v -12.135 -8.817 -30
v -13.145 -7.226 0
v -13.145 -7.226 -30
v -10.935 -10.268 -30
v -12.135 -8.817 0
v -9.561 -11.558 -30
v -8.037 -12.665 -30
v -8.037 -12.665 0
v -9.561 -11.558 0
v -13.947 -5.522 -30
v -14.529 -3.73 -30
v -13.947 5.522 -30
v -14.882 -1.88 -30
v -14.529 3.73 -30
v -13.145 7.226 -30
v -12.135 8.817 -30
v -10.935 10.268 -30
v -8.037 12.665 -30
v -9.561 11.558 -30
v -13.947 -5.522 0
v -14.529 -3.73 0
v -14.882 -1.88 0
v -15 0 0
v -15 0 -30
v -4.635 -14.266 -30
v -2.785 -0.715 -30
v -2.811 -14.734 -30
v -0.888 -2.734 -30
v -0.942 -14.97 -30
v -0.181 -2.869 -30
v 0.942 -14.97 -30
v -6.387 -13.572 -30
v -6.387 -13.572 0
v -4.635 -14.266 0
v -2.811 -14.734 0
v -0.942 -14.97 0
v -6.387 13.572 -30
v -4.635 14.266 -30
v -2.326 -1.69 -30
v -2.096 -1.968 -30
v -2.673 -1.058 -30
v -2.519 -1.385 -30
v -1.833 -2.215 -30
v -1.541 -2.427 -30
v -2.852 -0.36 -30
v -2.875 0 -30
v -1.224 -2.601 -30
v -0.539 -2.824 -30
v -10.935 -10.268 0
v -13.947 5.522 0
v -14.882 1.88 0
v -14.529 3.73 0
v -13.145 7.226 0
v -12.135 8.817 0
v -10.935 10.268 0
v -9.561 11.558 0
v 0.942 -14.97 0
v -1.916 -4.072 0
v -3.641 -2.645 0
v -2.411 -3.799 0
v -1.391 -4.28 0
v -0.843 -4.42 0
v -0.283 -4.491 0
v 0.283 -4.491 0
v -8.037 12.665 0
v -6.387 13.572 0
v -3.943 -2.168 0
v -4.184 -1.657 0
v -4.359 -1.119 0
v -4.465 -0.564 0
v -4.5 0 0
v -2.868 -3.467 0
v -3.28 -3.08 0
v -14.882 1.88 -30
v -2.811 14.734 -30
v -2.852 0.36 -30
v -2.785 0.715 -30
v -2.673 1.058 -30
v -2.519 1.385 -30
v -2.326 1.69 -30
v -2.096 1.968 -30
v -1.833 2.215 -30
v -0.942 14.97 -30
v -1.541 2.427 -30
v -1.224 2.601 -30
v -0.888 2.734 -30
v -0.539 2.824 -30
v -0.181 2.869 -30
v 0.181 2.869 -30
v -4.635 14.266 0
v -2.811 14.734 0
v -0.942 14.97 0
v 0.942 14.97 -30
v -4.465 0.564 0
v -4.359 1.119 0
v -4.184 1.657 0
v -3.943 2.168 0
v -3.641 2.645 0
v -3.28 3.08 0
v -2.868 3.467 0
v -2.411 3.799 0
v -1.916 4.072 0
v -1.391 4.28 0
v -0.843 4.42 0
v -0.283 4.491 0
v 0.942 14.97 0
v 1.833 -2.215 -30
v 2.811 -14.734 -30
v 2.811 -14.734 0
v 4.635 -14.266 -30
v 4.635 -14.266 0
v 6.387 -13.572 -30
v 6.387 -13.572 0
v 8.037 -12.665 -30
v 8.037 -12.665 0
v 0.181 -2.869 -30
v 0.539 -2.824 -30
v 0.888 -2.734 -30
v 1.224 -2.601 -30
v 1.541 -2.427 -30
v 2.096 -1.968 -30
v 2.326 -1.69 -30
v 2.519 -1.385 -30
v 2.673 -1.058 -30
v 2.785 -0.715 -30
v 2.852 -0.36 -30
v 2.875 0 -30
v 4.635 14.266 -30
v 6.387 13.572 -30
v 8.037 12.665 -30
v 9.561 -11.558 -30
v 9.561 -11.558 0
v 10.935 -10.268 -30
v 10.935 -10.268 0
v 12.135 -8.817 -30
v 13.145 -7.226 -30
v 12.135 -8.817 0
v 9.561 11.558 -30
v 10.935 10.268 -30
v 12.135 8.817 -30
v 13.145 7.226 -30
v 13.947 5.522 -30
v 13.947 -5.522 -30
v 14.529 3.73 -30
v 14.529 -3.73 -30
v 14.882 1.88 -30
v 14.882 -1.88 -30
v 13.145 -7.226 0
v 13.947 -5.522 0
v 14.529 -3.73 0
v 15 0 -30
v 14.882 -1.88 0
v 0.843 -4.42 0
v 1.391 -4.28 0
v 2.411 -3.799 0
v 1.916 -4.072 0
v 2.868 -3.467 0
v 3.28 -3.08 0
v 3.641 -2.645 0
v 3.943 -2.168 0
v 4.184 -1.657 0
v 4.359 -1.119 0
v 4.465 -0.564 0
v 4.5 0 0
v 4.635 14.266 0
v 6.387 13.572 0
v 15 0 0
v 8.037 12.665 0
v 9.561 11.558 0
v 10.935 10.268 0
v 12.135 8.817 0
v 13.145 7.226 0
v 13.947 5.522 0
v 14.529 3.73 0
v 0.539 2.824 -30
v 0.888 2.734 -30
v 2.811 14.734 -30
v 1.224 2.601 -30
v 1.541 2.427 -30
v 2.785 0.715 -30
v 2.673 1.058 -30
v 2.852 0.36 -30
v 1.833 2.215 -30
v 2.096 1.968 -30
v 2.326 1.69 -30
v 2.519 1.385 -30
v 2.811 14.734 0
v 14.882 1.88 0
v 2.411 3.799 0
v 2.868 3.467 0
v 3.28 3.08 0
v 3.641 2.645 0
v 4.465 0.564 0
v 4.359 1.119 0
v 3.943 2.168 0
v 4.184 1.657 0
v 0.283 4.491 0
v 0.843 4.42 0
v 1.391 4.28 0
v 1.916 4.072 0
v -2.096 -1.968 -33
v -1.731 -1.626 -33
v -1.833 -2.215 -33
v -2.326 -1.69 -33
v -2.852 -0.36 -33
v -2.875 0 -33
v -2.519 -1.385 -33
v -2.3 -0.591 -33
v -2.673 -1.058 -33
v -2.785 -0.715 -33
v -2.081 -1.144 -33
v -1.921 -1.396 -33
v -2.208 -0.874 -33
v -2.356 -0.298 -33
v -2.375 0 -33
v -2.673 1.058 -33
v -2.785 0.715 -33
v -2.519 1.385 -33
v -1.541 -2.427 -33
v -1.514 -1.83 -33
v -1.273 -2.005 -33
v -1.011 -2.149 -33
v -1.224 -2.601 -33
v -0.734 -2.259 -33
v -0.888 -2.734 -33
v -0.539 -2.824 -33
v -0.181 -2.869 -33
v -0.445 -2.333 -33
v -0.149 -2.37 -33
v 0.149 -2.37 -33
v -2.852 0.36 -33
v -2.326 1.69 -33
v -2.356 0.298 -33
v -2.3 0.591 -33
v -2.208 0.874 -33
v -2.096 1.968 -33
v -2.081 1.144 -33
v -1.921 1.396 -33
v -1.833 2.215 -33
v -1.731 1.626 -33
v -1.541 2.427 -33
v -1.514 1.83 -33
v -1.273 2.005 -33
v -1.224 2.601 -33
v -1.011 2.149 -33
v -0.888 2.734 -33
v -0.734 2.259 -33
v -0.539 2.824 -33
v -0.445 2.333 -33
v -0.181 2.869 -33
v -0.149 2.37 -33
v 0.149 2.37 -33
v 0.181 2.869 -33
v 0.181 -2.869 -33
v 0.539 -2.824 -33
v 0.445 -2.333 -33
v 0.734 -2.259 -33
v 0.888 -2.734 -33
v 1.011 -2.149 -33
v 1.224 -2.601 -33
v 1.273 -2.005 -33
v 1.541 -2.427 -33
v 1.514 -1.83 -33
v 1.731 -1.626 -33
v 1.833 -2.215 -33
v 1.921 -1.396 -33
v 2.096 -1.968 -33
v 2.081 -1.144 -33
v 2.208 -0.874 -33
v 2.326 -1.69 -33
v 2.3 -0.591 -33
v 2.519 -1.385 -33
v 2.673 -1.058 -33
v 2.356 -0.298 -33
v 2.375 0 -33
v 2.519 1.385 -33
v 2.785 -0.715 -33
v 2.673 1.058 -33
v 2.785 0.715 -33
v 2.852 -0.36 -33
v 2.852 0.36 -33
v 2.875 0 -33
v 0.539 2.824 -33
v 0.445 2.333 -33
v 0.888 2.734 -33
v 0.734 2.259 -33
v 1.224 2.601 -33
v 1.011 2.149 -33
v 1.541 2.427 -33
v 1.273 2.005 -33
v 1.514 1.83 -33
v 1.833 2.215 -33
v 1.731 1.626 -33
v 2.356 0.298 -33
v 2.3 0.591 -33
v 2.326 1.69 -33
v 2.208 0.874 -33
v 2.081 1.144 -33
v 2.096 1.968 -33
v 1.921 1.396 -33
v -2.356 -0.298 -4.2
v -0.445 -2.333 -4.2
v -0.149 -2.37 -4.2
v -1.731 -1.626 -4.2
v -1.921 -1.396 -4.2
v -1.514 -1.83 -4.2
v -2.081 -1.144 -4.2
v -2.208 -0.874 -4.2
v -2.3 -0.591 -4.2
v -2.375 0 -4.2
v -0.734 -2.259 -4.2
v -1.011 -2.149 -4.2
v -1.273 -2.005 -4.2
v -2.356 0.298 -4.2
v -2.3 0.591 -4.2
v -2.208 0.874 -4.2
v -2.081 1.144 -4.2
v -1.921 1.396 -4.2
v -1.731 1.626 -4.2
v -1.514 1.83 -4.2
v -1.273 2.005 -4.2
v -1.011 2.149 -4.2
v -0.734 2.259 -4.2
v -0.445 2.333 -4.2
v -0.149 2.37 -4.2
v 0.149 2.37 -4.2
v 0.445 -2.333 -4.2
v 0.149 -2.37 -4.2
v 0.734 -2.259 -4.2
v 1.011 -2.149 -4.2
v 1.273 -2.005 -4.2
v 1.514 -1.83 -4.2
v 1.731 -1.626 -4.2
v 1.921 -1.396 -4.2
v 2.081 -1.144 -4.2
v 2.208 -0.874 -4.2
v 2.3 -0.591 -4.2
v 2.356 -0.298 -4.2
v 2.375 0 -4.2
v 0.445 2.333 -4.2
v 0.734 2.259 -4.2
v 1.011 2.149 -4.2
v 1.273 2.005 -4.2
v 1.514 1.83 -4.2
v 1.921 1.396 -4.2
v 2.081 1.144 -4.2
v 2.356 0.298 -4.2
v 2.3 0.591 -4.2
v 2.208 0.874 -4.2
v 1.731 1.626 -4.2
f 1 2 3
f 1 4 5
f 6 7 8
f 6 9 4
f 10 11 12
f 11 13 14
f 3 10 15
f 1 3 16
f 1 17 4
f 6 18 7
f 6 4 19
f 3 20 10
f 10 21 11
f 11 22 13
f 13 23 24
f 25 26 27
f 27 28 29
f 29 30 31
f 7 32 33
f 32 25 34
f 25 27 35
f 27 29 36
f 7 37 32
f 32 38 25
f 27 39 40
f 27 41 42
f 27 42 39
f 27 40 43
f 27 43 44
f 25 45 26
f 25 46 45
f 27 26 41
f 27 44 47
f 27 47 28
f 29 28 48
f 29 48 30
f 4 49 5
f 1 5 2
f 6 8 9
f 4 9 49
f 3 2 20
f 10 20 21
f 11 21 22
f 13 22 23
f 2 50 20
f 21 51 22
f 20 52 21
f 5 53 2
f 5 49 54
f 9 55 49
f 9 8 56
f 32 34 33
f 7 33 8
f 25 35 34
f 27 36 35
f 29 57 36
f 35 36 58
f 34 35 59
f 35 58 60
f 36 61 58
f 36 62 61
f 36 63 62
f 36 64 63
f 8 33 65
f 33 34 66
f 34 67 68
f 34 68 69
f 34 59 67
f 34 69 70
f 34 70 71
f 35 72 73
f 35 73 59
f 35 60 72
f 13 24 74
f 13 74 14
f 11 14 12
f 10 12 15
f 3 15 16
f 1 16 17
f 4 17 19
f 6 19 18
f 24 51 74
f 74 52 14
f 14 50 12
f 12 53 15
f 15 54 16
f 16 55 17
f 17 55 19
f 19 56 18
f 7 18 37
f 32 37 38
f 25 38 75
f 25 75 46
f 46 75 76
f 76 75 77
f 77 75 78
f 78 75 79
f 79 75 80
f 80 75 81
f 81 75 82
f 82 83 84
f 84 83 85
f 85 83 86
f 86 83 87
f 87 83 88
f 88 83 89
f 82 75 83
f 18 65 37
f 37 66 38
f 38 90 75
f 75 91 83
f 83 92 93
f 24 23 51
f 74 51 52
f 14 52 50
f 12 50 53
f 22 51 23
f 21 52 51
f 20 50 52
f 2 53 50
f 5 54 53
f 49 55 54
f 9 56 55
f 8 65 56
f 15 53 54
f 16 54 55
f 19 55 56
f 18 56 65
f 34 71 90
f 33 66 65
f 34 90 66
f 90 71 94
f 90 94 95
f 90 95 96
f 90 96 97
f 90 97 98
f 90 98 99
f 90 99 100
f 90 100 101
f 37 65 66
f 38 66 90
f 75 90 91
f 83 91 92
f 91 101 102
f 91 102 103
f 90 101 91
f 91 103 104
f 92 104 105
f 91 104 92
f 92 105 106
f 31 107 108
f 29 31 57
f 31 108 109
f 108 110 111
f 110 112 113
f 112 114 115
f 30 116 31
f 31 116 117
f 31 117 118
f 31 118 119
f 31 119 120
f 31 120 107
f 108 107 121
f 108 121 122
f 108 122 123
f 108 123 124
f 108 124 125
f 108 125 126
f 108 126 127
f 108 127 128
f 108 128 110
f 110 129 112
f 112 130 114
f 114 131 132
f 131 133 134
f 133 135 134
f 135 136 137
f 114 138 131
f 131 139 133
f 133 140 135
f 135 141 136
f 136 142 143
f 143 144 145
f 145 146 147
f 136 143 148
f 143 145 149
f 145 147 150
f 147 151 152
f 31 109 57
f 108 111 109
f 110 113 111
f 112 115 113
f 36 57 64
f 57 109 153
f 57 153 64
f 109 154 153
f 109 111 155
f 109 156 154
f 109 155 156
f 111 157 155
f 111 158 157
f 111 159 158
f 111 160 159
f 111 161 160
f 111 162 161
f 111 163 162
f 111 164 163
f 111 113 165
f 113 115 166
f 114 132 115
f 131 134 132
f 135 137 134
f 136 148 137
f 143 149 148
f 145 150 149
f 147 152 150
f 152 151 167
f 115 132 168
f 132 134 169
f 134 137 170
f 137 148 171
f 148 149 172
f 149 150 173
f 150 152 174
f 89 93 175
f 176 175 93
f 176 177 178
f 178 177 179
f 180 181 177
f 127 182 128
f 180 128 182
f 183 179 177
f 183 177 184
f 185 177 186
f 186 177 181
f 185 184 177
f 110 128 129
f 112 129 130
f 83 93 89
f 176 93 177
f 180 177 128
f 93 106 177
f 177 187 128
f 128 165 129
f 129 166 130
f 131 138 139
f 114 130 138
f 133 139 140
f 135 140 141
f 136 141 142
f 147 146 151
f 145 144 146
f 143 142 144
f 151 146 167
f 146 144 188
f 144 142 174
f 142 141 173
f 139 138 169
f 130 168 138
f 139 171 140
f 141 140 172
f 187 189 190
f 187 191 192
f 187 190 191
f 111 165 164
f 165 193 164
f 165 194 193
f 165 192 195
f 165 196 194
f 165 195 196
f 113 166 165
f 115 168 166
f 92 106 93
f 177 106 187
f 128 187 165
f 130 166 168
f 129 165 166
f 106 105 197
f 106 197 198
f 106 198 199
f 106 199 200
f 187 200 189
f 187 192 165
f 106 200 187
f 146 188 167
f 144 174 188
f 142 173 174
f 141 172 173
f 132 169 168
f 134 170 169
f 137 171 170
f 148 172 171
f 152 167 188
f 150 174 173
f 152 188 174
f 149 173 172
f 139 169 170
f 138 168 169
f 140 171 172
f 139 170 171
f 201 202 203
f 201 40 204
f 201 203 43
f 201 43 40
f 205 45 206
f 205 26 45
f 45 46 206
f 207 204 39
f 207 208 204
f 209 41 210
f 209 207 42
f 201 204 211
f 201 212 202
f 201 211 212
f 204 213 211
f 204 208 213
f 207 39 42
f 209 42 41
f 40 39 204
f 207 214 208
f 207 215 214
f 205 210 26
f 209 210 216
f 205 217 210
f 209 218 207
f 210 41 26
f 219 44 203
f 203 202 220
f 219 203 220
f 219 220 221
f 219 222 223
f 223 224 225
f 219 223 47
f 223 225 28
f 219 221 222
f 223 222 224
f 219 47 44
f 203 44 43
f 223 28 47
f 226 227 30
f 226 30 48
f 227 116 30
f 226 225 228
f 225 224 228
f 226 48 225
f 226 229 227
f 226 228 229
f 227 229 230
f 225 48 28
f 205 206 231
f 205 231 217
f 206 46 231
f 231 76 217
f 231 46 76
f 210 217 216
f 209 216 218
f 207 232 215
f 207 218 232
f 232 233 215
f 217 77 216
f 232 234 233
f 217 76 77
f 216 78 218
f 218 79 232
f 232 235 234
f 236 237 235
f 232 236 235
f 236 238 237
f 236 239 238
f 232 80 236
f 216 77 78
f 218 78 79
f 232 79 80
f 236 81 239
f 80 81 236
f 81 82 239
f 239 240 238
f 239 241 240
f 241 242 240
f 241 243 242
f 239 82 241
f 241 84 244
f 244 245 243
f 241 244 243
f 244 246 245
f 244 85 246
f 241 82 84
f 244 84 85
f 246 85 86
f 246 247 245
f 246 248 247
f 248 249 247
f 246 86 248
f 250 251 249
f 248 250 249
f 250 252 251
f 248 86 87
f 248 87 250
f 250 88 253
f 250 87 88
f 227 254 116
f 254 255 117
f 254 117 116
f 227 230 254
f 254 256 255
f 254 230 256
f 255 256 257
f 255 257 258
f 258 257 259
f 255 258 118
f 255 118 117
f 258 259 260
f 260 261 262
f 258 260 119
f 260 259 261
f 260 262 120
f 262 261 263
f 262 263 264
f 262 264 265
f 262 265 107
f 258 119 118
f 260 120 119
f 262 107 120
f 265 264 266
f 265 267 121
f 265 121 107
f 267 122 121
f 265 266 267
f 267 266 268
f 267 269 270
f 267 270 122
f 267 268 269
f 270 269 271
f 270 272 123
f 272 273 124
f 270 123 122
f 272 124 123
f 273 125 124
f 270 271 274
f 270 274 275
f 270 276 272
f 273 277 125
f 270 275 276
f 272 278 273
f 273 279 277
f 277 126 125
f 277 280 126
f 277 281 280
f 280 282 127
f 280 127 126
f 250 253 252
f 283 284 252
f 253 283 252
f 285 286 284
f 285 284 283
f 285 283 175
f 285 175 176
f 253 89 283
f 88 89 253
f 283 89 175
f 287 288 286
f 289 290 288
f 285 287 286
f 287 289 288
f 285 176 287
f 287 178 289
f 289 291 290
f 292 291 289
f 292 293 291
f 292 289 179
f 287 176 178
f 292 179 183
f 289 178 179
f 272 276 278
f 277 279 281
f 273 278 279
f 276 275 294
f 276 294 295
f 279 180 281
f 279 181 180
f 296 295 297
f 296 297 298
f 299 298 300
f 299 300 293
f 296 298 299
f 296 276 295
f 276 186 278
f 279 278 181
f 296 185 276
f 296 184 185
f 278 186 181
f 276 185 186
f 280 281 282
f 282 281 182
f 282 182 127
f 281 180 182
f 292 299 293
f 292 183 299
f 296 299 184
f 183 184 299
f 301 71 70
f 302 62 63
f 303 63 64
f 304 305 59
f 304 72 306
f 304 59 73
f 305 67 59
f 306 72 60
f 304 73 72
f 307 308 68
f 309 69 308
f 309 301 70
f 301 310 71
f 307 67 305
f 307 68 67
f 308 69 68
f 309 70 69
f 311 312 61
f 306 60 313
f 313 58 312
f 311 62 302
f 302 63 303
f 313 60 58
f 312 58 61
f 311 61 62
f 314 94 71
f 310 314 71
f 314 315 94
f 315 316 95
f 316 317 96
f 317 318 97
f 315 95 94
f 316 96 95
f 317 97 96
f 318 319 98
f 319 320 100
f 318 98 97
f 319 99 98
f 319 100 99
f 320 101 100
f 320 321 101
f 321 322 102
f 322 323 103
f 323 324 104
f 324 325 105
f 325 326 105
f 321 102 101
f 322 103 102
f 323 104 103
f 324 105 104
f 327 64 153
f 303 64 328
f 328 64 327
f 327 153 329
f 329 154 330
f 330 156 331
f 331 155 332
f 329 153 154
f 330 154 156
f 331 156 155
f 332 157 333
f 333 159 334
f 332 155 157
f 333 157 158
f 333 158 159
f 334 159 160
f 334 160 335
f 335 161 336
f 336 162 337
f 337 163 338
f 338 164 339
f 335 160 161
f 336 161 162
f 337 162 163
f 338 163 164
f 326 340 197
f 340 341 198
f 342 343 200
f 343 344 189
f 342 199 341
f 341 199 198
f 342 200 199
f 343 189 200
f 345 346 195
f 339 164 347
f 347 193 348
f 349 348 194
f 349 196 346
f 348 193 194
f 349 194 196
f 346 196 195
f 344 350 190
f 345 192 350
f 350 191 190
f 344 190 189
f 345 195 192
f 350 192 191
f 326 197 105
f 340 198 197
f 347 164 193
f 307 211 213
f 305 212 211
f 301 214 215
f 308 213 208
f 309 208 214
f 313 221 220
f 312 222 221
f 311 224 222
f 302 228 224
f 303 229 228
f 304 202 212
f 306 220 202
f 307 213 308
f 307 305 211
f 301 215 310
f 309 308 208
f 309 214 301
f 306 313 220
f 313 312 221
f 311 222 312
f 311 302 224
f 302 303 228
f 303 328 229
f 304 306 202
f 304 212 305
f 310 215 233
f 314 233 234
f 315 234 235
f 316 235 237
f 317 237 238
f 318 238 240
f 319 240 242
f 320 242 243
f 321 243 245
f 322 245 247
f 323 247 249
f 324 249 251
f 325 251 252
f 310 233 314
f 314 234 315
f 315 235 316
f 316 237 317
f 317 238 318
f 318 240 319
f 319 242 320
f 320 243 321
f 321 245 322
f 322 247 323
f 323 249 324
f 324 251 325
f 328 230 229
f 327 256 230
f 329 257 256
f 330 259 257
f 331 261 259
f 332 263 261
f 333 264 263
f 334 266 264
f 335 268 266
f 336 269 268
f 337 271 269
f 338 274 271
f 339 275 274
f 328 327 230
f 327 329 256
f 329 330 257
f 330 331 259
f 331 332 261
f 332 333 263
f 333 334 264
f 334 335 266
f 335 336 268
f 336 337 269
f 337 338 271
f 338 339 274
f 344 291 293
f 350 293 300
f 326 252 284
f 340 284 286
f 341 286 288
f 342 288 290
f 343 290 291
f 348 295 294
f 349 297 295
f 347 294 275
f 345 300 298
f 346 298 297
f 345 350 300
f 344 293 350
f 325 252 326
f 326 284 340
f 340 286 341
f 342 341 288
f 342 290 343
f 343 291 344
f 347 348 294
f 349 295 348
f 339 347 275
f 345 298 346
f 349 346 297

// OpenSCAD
$fn = 50;


difference() {
	union() {
		translate(v = [0, 0, -30.0000000000]) {
			cylinder(h = 30, r = 15.0000000000);
		}
		#translate(v = [0, 0, -33.0000000000]) {
			cylinder(h = 33, r = 2.8750000000);
		}
	}
	union() {
		translate(v = [0, 0, 0]) {
			rotate(a = [0, 0, 0]) {
				difference() {
					union() {
						translate(v = [0, 0, -33.0000000000]) {
							cylinder(h = 33, r = 2.2500000000);
						}
						translate(v = [0, 0, -4.2000000000]) {
							cylinder(h = 4.2000000000, r1 = 2.3750000000, r2 = 4.5000000000);
						}
						translate(v = [0, 0, -33.0000000000]) {
							cylinder(h = 33, r = 2.3750000000);
						}
						translate(v = [0, 0, -33.0000000000]) {
							cylinder(h = 33, r = 2.2500000000);
						}
					}
					union();
				}
			}
		}
	}
}
